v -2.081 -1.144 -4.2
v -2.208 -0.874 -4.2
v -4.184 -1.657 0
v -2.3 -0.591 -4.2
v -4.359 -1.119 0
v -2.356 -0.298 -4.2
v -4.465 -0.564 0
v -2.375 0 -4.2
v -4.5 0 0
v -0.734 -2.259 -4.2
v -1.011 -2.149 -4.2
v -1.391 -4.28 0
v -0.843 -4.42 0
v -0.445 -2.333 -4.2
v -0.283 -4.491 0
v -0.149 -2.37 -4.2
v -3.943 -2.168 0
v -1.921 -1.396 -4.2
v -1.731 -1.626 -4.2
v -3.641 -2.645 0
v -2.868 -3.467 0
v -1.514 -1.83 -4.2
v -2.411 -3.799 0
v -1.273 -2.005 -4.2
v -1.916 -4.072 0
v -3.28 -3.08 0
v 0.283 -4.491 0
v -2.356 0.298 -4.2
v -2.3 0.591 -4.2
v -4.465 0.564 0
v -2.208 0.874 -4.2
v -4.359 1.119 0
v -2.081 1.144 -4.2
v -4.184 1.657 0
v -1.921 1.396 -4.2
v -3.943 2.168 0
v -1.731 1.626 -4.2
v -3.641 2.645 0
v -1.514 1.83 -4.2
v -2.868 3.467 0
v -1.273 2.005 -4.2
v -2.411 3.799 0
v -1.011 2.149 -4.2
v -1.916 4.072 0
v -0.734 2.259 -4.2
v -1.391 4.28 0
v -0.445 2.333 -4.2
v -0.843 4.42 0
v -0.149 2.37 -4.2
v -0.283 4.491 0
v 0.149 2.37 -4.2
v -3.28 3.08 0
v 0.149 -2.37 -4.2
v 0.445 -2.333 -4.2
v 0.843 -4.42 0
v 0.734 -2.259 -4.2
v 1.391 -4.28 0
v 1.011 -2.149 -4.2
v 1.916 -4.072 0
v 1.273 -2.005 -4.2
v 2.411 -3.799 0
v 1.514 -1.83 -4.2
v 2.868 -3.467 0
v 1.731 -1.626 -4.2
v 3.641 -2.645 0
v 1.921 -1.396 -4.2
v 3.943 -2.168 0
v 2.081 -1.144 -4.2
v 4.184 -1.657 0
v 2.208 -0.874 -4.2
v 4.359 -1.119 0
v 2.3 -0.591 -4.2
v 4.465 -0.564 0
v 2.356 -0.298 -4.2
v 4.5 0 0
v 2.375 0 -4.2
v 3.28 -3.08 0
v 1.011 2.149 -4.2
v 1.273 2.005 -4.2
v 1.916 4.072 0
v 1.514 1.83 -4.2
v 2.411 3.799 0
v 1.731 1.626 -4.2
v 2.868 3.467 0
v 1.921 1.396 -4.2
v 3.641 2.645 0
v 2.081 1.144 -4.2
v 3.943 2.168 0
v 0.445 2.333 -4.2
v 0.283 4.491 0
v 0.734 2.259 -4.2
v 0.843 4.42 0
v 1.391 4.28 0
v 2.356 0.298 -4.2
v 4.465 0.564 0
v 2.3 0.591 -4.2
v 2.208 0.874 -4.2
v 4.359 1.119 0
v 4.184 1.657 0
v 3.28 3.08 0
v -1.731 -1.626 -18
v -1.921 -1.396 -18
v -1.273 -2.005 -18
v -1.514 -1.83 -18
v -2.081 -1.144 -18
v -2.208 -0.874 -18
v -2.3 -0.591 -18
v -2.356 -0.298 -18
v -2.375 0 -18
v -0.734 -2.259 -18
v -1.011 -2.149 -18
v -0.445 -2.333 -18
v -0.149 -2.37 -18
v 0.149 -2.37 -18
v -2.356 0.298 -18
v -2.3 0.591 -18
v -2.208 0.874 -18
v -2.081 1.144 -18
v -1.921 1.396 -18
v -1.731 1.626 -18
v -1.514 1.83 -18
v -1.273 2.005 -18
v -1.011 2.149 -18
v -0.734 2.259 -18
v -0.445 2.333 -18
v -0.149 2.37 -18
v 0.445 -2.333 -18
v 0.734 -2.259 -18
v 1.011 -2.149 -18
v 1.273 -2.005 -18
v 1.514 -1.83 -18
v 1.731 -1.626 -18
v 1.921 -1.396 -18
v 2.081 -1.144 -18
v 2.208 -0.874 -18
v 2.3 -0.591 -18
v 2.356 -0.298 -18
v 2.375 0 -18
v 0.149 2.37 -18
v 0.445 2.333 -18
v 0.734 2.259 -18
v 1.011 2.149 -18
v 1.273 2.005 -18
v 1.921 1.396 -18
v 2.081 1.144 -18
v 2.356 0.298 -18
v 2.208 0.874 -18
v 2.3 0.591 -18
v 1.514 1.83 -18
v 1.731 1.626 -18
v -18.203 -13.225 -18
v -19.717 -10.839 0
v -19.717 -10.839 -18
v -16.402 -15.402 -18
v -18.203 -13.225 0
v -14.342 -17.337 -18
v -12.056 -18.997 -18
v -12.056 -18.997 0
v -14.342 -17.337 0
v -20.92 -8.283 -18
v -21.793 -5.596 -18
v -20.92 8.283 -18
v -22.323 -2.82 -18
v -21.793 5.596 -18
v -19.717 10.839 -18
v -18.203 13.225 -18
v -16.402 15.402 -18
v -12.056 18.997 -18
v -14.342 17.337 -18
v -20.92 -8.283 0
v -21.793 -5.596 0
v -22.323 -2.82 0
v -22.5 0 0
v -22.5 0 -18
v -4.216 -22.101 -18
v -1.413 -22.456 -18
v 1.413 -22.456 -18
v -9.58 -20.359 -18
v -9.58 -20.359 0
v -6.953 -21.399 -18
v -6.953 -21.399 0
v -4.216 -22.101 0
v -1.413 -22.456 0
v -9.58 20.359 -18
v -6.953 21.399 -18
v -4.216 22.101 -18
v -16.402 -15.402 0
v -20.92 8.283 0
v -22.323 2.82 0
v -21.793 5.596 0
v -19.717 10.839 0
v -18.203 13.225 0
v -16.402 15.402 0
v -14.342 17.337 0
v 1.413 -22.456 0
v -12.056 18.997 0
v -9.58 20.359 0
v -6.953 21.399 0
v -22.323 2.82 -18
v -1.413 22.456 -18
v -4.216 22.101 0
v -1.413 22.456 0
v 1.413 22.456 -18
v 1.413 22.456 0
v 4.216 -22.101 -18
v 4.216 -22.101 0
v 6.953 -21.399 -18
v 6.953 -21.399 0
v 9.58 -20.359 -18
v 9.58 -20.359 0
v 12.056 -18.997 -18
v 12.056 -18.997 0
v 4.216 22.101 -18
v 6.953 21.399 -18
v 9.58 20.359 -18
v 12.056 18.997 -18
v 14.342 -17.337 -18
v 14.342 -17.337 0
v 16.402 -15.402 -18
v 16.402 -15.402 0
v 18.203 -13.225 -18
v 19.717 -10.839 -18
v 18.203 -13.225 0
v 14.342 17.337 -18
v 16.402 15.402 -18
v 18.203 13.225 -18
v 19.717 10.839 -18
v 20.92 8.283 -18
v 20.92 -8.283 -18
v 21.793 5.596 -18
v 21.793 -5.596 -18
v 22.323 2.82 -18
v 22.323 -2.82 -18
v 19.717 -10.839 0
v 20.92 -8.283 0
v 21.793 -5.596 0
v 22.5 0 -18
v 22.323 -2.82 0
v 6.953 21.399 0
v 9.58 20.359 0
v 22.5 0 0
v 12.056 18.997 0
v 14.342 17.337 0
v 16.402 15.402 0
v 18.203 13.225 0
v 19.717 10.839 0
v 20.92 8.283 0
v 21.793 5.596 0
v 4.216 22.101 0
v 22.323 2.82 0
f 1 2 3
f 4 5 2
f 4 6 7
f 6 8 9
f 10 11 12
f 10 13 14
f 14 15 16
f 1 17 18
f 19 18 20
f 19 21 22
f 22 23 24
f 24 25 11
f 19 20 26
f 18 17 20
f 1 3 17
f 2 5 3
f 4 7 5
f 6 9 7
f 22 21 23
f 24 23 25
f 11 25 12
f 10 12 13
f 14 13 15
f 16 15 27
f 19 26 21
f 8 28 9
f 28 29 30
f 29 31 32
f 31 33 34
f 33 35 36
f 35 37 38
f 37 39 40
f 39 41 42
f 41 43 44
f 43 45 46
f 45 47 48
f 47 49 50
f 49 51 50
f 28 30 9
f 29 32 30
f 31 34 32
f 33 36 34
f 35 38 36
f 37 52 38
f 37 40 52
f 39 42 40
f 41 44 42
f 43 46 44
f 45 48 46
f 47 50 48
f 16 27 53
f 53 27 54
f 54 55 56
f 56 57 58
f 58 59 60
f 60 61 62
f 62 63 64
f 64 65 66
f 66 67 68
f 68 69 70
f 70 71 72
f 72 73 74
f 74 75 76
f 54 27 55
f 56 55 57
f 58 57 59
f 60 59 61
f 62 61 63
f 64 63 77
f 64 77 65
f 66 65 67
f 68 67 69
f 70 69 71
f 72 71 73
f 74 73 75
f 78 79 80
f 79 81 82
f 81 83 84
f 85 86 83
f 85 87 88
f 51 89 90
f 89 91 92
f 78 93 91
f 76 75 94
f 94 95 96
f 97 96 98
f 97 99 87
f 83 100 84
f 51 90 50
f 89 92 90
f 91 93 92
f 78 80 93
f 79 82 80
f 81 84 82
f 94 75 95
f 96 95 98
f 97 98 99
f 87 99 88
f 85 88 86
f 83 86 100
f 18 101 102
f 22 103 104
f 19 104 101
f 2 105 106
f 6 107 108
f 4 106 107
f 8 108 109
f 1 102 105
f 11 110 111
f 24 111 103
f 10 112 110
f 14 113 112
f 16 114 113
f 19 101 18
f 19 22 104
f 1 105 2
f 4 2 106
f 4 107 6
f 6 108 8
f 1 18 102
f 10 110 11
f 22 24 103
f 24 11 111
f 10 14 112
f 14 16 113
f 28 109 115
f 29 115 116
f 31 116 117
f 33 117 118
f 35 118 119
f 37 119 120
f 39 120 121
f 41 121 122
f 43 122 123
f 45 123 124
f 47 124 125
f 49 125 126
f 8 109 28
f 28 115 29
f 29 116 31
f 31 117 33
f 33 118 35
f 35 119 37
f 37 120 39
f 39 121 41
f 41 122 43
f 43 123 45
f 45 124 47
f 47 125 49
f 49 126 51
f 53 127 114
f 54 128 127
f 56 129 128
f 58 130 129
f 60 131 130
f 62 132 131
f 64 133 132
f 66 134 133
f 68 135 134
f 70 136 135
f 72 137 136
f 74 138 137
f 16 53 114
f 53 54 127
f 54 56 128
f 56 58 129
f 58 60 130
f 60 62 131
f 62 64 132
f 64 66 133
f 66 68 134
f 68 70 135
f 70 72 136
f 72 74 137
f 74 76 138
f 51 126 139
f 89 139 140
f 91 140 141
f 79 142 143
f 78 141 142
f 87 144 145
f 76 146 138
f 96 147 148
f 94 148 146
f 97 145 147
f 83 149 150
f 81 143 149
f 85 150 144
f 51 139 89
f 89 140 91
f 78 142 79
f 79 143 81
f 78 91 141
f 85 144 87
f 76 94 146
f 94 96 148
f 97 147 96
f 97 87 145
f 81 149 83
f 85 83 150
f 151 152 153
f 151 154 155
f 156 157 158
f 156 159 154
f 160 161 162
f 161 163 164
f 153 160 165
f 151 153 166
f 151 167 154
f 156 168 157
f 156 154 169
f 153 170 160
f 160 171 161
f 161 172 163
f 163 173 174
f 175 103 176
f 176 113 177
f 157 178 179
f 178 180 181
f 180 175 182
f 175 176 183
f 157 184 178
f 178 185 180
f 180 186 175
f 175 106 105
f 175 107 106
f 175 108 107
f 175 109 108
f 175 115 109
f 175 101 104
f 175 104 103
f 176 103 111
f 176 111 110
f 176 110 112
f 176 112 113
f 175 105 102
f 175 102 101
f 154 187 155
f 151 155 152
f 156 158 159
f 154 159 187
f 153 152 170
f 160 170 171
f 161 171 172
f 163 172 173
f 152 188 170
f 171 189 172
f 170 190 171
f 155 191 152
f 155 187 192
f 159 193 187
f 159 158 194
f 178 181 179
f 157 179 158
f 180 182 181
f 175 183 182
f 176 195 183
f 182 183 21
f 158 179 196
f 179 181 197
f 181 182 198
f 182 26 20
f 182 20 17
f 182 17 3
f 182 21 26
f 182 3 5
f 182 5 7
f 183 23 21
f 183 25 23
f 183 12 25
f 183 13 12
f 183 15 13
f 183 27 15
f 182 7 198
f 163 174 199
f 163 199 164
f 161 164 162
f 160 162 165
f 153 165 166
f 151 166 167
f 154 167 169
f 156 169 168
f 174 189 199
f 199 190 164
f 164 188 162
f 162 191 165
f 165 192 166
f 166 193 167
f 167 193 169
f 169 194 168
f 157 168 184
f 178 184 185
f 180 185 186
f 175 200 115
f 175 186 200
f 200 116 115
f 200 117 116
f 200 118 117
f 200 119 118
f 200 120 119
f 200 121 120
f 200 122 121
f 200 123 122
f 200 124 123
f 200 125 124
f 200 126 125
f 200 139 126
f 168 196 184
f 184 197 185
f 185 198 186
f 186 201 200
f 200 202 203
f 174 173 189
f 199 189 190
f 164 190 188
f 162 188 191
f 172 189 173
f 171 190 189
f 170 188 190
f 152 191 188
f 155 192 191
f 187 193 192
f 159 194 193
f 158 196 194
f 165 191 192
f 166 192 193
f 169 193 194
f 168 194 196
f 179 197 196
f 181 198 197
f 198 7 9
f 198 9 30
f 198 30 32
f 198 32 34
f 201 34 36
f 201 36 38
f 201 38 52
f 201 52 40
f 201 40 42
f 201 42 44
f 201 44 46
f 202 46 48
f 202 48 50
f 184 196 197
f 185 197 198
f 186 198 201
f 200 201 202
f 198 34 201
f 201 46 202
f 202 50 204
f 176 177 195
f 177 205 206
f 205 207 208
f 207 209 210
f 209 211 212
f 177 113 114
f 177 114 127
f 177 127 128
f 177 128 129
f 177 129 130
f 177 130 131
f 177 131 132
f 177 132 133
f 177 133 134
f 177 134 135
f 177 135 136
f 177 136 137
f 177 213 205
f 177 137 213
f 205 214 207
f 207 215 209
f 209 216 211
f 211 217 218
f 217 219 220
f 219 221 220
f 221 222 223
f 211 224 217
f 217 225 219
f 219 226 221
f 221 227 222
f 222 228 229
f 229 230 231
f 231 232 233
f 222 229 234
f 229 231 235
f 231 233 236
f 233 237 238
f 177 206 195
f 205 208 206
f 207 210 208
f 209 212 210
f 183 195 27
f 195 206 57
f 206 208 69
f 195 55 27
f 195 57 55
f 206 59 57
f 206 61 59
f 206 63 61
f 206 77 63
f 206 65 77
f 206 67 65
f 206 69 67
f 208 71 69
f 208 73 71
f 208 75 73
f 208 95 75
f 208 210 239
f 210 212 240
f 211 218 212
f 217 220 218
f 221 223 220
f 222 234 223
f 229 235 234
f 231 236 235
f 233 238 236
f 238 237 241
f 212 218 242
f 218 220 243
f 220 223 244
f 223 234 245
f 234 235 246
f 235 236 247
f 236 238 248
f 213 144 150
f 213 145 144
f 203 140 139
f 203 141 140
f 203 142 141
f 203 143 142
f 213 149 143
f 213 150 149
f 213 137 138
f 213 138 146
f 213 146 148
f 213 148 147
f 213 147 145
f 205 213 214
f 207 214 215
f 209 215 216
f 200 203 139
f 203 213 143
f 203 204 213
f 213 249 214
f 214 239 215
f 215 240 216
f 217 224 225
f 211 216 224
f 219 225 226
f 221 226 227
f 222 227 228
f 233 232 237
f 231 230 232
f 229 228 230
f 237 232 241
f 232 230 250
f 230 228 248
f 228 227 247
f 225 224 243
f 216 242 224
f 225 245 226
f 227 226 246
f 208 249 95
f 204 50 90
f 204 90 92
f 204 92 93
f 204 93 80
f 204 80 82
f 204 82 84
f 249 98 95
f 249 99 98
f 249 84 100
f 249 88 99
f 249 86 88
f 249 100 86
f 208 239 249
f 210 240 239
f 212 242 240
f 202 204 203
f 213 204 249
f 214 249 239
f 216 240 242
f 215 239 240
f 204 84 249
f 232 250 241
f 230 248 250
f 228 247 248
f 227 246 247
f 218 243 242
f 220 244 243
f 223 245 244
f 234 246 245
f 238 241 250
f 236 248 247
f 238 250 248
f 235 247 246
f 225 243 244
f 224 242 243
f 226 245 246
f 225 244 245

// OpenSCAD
$fn = 50;


difference() {
	union() {
		translate(v = [0, 0, -18.0000000000]) {
			cylinder(h = 18, r = 22.5000000000);
		}
	}
	union() {
		translate(v = [0, 0, 0]) {
			rotate(a = [0, 0, 0]) {
				difference() {
					union() {
						translate(v = [0, 0, -21.0000000000]) {
							cylinder(h = 21, r = 2.2500000000);
						}
						translate(v = [0, 0, -4.2000000000]) {
							cylinder(h = 4.2000000000, r1 = 2.3750000000, r2 = 4.5000000000);
						}
						translate(v = [0, 0, -21.0000000000]) {
							cylinder(h = 21, r = 2.3750000000);
						}
						translate(v = [0, 0, -21.0000000000]) {
							cylinder(h = 21, r = 2.2500000000);
						}
					}
					union();
				}
			}
		}
	}
}
